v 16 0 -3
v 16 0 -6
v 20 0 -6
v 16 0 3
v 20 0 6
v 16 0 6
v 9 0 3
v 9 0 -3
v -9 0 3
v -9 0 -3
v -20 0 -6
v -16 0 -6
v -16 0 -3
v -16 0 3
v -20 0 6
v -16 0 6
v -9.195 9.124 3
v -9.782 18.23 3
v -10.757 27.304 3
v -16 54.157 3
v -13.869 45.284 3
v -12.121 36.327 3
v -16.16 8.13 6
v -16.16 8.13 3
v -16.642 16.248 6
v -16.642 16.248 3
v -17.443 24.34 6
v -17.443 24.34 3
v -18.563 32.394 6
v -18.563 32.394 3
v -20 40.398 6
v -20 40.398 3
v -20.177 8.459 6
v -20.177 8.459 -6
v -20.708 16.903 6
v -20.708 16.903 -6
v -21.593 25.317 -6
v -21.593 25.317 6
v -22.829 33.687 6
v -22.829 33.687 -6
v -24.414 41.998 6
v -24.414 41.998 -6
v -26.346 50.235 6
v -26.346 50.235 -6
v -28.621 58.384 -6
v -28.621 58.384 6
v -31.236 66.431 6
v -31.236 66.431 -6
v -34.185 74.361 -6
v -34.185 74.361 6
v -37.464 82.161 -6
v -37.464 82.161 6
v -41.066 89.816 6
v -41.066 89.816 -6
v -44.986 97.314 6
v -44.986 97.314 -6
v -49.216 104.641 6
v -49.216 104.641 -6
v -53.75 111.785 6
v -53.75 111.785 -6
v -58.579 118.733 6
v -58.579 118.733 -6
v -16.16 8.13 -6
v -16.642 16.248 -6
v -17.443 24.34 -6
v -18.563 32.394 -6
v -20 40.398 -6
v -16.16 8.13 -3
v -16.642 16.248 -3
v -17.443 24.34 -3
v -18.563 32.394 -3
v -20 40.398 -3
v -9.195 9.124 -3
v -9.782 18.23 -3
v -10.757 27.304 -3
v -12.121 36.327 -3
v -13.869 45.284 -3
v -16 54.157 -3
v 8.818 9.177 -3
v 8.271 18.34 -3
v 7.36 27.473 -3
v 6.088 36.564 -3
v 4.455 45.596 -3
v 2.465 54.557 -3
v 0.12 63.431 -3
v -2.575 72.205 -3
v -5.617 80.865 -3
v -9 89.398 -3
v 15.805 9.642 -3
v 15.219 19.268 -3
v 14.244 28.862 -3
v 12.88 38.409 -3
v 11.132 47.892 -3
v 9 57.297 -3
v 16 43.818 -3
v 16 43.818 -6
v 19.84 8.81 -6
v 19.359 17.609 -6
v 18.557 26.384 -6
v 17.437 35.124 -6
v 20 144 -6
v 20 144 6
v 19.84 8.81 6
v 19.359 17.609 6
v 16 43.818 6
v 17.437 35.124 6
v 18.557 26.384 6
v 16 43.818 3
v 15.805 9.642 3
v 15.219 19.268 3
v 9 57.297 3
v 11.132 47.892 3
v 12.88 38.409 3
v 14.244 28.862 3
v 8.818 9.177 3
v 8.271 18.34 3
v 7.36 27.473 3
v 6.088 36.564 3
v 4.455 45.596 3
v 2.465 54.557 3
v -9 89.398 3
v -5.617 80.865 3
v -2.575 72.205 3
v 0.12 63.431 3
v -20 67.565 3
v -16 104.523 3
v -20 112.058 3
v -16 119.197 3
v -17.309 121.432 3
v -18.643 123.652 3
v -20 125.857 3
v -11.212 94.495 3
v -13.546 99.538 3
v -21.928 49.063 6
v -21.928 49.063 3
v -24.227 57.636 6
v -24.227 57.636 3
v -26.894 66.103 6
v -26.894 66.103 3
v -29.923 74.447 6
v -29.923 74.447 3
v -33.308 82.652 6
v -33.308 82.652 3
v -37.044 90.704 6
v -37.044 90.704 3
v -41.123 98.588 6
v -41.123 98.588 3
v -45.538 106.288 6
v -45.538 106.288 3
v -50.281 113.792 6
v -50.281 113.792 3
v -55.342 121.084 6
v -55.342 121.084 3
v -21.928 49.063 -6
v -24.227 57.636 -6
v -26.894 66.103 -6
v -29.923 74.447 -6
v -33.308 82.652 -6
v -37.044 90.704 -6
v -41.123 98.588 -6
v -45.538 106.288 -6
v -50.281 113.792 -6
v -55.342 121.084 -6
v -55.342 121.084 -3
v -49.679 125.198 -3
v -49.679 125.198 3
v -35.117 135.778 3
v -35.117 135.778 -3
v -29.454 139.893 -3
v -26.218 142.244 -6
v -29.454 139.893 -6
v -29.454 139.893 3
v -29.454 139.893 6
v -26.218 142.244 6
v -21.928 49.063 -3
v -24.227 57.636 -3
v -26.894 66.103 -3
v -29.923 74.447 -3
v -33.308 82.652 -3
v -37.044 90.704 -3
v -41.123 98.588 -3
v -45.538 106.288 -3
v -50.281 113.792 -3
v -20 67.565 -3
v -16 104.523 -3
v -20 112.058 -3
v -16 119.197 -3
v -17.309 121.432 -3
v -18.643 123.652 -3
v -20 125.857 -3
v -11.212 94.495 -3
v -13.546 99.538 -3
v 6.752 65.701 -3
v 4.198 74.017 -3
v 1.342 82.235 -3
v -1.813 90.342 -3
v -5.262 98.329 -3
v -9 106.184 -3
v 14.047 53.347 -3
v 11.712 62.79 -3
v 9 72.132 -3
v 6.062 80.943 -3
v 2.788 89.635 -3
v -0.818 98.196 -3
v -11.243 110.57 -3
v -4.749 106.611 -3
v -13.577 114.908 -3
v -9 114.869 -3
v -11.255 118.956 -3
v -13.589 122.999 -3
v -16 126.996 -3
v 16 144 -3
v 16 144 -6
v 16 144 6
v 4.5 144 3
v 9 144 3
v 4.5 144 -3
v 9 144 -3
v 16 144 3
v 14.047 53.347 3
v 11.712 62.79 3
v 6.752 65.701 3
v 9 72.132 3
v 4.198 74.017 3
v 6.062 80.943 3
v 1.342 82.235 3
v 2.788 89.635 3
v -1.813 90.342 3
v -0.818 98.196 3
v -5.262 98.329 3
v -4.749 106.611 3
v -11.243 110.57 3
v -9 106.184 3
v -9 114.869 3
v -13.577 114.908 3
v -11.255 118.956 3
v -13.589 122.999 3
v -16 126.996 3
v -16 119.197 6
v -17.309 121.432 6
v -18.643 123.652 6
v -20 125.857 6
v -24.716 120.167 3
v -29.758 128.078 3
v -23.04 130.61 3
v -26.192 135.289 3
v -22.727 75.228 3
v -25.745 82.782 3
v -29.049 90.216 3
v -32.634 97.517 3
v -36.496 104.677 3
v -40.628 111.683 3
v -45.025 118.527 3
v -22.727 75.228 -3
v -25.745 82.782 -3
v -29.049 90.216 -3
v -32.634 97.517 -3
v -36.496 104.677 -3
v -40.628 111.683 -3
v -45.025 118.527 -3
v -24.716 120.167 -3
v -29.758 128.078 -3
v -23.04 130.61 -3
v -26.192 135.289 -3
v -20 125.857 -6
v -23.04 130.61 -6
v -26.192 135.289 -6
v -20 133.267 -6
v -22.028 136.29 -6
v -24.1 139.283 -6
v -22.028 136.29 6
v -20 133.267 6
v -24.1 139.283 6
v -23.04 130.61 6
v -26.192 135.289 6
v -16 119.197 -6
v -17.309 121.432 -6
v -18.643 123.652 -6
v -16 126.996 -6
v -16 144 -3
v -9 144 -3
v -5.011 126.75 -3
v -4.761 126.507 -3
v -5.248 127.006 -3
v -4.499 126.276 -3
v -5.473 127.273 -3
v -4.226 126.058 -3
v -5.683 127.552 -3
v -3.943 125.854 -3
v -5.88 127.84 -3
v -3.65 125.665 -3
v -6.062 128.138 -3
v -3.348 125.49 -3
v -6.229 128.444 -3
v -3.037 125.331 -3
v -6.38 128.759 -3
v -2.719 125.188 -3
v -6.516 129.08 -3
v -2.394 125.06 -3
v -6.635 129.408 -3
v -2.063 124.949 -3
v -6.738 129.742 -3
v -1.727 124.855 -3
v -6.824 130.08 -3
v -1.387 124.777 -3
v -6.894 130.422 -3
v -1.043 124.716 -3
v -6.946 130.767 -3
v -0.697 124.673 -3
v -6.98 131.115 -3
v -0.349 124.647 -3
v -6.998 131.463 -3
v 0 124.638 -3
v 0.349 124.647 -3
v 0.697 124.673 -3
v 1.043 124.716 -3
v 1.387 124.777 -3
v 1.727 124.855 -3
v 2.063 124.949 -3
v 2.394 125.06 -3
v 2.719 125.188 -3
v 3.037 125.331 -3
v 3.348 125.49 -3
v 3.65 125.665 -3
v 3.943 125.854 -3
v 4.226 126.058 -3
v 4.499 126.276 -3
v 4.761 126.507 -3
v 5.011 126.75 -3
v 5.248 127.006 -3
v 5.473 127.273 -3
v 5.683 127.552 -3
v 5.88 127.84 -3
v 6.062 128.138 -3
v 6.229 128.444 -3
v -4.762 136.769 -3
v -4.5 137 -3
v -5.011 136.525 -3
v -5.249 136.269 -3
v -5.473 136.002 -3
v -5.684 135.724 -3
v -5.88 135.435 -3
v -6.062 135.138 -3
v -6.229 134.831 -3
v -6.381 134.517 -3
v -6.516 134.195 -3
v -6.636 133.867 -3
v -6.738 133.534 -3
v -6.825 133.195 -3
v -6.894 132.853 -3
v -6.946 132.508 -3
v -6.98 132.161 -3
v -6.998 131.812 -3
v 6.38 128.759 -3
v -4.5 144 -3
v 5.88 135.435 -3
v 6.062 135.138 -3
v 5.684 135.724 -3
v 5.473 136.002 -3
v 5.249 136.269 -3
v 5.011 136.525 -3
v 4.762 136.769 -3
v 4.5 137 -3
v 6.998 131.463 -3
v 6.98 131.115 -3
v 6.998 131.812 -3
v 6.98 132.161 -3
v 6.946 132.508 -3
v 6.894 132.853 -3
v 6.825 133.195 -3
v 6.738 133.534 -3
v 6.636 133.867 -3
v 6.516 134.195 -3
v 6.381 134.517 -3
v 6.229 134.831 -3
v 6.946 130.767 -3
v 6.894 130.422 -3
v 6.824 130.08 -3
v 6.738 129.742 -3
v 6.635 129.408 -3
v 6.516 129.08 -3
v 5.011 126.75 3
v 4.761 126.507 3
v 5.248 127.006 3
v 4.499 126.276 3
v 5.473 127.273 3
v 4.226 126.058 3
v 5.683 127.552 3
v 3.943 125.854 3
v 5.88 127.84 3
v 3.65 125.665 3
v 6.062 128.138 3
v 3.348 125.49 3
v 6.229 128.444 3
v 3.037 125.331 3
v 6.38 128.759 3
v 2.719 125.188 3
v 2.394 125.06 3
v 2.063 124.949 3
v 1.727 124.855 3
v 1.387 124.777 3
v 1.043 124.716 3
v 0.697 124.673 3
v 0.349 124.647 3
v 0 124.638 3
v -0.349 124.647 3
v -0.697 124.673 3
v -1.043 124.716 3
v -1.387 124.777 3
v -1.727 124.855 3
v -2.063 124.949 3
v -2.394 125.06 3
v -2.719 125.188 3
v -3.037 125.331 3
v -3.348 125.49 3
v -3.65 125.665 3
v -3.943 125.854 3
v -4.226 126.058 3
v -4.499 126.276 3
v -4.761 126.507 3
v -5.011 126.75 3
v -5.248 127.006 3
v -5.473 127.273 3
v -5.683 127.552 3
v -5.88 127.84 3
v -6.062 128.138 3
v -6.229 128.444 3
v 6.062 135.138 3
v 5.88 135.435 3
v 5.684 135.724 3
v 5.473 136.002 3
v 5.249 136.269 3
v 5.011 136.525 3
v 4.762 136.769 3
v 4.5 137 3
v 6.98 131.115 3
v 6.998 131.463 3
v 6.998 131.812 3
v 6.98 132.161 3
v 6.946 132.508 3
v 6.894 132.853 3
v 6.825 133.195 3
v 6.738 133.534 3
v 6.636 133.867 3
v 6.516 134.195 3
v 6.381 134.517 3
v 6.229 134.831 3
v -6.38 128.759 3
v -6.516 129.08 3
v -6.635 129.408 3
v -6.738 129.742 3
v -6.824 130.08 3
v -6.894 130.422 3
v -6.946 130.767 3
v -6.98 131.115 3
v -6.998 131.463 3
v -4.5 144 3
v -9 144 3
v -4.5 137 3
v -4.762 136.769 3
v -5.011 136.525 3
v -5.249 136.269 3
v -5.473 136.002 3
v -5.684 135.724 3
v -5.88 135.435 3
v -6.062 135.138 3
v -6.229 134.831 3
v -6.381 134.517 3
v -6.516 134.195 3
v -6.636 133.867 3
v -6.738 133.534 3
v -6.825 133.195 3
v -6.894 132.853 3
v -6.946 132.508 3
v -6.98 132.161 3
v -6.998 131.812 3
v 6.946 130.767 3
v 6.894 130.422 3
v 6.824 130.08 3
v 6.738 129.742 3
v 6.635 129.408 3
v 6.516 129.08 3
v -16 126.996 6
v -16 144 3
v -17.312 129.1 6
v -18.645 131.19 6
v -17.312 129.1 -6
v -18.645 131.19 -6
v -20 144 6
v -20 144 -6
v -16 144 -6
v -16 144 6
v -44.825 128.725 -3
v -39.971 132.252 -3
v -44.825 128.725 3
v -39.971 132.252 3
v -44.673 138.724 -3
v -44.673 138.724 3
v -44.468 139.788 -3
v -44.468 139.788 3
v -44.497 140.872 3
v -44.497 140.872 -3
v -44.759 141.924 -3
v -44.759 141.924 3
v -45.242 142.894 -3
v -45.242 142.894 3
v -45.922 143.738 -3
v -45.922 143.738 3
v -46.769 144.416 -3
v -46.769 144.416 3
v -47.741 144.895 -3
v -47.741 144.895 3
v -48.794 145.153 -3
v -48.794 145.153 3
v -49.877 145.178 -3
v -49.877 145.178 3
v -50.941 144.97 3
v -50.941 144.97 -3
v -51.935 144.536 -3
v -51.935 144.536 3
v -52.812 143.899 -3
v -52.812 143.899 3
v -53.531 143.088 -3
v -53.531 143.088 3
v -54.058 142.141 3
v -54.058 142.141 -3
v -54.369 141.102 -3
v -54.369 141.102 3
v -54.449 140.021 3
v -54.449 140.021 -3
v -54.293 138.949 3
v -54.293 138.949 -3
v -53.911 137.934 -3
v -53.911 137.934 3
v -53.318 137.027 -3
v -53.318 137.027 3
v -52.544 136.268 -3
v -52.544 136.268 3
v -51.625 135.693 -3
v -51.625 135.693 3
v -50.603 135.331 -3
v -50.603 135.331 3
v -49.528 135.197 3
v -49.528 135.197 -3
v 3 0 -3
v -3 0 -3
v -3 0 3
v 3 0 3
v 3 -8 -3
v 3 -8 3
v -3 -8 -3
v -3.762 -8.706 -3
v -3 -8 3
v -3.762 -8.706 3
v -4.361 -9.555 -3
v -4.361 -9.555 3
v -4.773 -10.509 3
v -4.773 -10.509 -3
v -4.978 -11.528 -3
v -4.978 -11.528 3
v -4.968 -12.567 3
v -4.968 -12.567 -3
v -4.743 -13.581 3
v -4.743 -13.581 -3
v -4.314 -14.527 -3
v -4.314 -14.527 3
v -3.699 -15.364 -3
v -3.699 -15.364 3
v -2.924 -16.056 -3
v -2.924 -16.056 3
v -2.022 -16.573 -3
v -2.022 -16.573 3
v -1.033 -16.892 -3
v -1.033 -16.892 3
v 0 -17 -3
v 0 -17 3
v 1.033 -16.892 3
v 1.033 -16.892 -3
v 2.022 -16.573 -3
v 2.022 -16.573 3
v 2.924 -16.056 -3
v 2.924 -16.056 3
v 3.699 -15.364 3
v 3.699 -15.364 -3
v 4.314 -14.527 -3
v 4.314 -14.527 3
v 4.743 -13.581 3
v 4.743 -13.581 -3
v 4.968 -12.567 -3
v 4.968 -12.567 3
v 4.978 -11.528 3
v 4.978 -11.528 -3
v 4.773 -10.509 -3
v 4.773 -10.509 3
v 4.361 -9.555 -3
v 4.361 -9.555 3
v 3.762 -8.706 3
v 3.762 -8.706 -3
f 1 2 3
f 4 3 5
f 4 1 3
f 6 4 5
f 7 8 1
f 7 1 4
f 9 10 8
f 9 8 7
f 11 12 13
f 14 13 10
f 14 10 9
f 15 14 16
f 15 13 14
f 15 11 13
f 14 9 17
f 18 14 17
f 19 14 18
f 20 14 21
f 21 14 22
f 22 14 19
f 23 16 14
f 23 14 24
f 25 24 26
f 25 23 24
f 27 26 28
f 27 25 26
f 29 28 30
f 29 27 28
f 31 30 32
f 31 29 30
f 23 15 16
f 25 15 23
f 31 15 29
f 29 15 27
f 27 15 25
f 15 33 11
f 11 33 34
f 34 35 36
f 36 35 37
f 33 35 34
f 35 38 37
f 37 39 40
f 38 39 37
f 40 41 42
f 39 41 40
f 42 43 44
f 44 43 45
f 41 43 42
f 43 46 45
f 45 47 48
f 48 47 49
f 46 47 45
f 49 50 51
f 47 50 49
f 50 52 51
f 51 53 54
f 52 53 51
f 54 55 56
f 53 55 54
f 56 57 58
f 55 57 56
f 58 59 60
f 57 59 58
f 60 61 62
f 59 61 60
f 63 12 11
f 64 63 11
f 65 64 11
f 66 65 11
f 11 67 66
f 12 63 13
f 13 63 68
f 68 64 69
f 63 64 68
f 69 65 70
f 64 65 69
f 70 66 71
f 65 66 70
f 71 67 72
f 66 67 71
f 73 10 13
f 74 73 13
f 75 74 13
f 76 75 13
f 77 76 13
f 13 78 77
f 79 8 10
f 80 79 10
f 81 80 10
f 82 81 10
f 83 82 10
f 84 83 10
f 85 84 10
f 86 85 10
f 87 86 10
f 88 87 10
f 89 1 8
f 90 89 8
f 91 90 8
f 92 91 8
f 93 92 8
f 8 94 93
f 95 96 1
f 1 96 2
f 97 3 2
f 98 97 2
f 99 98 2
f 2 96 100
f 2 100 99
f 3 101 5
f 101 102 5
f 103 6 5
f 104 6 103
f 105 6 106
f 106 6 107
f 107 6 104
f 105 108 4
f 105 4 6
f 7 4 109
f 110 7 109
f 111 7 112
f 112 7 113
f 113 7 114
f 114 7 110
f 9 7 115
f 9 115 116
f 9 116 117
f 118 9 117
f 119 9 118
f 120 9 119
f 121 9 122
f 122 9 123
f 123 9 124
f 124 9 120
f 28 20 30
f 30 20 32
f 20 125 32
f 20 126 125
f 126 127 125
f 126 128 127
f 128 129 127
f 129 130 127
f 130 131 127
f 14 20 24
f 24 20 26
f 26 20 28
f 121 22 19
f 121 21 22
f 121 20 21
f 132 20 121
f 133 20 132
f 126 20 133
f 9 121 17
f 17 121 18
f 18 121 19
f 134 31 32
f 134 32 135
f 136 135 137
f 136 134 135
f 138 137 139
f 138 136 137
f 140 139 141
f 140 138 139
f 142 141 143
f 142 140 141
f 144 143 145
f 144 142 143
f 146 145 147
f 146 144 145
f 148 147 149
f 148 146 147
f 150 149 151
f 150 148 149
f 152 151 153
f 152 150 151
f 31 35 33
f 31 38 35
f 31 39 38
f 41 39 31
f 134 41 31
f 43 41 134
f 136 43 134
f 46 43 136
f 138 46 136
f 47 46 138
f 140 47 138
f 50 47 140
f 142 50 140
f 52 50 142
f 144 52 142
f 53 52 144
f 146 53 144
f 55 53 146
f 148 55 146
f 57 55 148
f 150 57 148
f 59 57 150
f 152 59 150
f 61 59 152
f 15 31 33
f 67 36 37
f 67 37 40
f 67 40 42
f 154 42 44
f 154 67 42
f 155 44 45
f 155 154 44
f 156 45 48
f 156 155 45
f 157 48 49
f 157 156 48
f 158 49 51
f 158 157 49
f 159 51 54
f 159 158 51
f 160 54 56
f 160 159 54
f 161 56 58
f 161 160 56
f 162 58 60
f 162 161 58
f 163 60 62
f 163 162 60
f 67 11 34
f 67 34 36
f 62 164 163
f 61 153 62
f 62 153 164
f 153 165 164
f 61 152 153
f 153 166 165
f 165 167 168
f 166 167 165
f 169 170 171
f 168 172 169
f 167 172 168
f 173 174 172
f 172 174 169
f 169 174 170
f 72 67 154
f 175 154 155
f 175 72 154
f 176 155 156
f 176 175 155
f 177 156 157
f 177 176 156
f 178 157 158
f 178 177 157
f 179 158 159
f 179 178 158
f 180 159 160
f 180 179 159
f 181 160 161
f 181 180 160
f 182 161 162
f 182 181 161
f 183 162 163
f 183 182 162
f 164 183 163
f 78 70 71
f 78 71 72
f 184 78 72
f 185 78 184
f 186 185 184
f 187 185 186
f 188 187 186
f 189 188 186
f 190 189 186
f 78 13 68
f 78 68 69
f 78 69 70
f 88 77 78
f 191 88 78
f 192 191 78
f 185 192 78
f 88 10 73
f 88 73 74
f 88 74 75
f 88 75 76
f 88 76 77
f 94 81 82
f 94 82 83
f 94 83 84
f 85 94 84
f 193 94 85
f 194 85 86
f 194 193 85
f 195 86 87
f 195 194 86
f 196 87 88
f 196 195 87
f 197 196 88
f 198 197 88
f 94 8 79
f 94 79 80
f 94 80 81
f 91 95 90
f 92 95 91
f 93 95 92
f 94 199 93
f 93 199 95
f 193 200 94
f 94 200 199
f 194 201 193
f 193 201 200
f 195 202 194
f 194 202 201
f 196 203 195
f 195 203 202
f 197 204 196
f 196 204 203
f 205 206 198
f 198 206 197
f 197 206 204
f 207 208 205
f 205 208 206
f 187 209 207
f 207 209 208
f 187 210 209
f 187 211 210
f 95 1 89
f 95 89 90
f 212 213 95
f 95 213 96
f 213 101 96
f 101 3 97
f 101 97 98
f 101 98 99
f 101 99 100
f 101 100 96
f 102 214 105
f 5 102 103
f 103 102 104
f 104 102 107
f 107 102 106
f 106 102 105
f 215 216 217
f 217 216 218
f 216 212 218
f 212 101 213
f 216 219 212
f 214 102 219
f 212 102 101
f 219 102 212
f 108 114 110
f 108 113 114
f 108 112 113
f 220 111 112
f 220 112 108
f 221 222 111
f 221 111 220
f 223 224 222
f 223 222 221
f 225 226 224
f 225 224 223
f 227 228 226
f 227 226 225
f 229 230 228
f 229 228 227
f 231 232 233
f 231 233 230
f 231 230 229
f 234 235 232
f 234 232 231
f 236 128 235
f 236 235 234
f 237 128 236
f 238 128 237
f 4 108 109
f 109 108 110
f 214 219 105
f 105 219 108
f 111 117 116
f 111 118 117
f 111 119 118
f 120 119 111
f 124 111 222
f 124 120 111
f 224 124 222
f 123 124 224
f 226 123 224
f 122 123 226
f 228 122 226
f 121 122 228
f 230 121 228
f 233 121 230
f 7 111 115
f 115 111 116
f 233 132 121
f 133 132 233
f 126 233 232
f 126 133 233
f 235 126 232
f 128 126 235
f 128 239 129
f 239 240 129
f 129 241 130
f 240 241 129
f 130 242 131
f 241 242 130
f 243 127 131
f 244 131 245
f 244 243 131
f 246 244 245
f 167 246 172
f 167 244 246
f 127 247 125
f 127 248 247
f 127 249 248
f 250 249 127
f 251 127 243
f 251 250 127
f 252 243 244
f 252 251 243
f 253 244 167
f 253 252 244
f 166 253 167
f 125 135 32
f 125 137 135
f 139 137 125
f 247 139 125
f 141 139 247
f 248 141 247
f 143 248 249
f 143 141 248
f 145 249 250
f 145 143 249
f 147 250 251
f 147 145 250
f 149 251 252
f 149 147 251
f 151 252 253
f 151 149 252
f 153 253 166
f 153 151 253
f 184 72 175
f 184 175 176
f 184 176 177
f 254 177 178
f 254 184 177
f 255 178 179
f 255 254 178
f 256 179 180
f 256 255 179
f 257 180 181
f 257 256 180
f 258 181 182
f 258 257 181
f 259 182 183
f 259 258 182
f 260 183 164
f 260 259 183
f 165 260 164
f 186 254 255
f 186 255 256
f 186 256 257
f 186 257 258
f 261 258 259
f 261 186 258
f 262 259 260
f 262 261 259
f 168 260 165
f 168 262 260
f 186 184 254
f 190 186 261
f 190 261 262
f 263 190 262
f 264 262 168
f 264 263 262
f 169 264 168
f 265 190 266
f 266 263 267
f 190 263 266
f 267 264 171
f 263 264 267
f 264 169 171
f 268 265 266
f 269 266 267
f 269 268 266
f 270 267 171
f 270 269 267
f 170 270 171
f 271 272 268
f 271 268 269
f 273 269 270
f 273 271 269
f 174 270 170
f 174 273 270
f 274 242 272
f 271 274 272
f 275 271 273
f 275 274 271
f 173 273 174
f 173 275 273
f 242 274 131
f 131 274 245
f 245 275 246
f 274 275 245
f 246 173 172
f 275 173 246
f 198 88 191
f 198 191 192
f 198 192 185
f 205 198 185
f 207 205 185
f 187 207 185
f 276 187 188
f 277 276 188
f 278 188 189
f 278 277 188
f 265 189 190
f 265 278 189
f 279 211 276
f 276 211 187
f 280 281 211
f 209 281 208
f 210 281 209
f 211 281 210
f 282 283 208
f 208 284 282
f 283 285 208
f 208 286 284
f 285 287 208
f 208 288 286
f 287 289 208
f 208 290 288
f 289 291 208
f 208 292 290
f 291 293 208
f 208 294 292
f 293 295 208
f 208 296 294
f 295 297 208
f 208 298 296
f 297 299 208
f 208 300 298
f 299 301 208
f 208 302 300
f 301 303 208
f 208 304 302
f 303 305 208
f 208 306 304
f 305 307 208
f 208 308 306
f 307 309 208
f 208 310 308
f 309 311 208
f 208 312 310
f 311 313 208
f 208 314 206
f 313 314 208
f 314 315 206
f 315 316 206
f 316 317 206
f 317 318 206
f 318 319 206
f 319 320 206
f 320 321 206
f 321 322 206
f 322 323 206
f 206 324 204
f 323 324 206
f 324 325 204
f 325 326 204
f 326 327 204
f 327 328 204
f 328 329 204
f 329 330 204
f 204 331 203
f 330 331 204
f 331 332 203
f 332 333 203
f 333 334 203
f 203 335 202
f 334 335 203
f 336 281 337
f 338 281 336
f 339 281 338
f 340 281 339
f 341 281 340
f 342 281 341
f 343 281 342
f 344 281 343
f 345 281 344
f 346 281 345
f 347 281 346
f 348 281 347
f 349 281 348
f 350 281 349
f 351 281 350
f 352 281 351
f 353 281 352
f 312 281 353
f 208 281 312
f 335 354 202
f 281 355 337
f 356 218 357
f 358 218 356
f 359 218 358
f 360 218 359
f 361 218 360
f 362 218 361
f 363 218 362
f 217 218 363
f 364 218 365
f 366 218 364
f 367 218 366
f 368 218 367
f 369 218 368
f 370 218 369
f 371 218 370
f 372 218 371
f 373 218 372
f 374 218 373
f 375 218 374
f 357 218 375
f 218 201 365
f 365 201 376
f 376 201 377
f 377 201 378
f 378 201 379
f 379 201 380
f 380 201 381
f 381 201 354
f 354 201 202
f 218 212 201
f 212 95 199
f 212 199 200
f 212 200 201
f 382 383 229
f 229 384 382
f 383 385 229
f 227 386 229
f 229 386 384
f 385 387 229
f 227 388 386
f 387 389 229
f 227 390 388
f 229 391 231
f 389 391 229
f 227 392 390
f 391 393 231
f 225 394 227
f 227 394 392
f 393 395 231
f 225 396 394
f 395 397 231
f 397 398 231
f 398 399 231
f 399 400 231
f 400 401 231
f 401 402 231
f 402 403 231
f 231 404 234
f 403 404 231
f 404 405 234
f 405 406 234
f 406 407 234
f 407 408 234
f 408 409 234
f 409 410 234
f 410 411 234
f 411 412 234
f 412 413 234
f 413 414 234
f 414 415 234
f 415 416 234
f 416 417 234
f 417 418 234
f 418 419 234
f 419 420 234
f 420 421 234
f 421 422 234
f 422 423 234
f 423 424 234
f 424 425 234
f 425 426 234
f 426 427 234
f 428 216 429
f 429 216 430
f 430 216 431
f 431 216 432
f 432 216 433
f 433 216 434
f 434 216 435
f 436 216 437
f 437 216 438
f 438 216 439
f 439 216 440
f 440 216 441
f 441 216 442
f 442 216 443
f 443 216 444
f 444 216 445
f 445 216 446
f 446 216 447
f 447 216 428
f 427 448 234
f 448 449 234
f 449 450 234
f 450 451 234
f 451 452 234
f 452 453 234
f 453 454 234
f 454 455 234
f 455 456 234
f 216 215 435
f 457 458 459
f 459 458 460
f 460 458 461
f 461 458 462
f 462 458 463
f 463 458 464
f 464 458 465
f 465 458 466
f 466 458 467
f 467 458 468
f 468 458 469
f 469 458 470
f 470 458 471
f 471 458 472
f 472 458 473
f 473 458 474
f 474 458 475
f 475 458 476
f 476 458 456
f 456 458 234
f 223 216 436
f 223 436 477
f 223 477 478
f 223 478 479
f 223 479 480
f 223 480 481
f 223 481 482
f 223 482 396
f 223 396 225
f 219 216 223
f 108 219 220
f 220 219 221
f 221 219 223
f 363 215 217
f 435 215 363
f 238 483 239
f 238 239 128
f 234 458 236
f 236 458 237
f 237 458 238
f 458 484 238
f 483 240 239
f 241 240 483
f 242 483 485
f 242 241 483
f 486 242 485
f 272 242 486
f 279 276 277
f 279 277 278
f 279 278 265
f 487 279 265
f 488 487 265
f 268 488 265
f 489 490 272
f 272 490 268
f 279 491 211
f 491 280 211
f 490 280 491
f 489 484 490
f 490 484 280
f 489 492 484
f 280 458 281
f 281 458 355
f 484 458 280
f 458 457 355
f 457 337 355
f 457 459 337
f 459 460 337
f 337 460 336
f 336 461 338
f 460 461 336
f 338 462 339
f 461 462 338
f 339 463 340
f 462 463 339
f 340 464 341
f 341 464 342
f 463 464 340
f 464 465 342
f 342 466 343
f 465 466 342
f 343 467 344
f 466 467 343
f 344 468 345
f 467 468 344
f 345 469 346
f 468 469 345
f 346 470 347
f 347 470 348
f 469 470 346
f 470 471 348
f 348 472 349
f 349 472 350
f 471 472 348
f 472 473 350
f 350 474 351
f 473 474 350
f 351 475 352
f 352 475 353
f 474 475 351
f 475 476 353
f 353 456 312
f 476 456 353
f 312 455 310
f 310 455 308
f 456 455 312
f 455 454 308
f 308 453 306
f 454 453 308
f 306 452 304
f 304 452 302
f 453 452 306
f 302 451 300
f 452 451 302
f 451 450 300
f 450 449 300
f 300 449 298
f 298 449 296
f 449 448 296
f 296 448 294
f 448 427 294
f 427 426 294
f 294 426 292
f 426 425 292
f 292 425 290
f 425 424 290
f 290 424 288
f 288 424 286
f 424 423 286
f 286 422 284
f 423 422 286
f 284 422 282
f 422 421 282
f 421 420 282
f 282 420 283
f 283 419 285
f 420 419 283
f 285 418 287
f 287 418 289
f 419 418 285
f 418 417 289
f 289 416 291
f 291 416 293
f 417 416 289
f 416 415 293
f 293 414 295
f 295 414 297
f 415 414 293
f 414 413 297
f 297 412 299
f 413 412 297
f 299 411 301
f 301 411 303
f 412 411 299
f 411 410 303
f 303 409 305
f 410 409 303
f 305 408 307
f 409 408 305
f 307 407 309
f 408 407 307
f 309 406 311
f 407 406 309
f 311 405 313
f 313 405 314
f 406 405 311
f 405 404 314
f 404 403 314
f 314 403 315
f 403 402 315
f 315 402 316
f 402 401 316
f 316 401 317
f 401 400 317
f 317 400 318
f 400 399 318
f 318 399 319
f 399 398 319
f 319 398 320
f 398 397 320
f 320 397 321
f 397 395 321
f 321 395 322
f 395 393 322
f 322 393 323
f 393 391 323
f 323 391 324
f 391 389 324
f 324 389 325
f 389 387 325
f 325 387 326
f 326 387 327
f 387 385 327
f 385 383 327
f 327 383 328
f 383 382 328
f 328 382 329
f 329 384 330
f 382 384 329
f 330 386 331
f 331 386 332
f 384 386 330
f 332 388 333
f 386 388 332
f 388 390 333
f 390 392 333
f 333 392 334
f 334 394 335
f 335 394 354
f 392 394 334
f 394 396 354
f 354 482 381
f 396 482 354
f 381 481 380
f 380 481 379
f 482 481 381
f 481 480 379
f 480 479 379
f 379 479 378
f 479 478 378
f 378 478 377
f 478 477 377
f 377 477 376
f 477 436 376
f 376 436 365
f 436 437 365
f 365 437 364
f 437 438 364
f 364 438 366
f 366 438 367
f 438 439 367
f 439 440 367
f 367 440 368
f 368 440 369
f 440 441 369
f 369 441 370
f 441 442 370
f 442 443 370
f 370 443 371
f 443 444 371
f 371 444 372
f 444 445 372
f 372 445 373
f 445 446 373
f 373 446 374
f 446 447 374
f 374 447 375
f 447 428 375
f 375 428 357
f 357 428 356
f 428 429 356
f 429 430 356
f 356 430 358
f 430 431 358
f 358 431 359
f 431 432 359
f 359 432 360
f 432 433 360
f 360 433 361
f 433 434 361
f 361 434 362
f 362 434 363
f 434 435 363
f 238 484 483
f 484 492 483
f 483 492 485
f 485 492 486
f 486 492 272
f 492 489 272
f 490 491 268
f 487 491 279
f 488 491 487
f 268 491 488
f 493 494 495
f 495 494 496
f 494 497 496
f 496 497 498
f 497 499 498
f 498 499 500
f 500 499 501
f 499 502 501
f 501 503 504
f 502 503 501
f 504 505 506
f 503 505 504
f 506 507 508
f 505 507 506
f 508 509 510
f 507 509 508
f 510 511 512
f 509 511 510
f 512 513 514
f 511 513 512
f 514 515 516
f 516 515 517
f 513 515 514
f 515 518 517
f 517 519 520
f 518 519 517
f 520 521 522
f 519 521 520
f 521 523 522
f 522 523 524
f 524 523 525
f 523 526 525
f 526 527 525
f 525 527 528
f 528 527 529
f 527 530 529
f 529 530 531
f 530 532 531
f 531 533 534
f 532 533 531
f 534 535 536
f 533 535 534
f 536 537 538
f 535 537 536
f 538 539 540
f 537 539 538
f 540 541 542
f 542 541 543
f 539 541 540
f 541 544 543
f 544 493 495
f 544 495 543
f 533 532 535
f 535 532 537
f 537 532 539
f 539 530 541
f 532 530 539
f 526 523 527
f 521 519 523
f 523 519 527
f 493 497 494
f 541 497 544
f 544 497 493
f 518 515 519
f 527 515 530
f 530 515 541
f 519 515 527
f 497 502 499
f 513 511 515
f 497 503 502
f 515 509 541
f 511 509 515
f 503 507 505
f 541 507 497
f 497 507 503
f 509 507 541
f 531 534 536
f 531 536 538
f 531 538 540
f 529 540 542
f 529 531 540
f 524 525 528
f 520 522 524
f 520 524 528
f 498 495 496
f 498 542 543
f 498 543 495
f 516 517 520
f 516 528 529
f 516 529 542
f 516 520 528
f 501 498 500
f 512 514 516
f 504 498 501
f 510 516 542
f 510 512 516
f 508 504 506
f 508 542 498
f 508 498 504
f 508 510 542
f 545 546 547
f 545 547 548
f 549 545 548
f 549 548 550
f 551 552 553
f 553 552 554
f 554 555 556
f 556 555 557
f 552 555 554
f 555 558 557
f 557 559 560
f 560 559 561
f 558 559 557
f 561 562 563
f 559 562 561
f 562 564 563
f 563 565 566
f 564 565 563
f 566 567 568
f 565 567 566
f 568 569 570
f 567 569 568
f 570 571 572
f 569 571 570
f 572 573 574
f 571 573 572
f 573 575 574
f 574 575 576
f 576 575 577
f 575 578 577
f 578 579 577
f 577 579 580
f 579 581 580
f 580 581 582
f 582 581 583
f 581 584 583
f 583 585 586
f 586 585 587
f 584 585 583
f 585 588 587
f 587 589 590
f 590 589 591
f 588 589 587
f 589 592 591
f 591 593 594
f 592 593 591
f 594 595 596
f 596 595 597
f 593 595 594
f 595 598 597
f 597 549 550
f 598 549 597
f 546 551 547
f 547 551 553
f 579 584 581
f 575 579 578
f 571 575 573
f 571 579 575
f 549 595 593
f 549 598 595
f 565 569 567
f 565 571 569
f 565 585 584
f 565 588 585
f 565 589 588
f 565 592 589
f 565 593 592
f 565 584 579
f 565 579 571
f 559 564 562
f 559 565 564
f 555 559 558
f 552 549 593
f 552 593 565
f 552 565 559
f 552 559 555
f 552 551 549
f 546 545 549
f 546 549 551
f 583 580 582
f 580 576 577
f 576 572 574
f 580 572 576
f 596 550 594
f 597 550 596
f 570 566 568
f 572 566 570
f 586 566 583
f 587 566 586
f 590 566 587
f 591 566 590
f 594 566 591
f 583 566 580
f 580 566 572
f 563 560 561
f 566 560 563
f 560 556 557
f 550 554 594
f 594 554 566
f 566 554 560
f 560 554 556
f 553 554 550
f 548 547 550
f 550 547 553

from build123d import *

# Parameters (mm, degrees)
SKETCH013_W       = 32
SKETCH013_H       = 3
POCKET_DEPTH      = 6.001
POCKET_DEPTH_BACK = -6.001
PAD_DEPTH         = 3
PAD002_DEPTH      = 3


with BuildPart() as body:
    # AdditivePipe: sweep along a path in Sketch002
    with BuildLine(Plane.XY) as additivepipe_path:
        ThreePointArc((0, 0), (-10.865453, 68.601773), (-42.398227, 130.488326))
    # Sketch → AdditivePipe (sweep)
    with BuildSketch(Plane.XZ):
        Polygon((-20, 6), (-20, -6), (-16, -6), (-16, -3), (-9, -3), (9, -3), (16, -3), (16, -6), (20, -6), (20, 6), (16, 6), (16, 3), (9, 3), (-9, 3), (-16, 3), (-16, 6), align=None)
    sweep(path=additivepipe_path.line)

    # AdditivePipe001: sweep along a path in Sketch001
    with BuildLine(Plane.XY) as additivepipe001_path:
        Line((0, 0), (0, 144))
    # Sketch → AdditivePipe001 (sweep)
    with BuildSketch(Plane.XZ):
        Polygon((-20, 6), (-20, -6), (-16, -6), (-16, -3), (-9, -3), (9, -3), (16, -3), (16, -6), (20, -6), (20, 6), (16, 6), (16, 3), (9, 3), (-9, 3), (-16, 3), (-16, 6), align=None)
    sweep(path=additivepipe001_path.line)

    # SubtractivePipe: sweep along a path in Sketch002
    with BuildLine(Plane.XY) as subtractivepipe_path:
        ThreePointArc((0, 0), (-10.865453, 68.601773), (-42.398227, 130.488326))
    # Sketch013 (on Face1 of AdditivePipe001) → SubtractivePipe (sweep, cut)
    with BuildSketch(Plane.XZ):
        with Locations((0, 4.5)):
            Rectangle(SKETCH013_W, SKETCH013_H)
    subtractivepipe = sweep(path=subtractivepipe_path.line, mode=Mode.SUBTRACT)

    # SubtractivePipe001: sweep along a path in Sketch001
    with BuildLine(Plane.XY) as subtractivepipe001_path:
        Line((0, 0), (0, 144))
    # Sketch013 (on Face1 of AdditivePipe001) → SubtractivePipe001 (sweep, cut)
    with BuildSketch(Plane.XZ):
        with Locations((0, 4.5)):
            Rectangle(SKETCH013_W, SKETCH013_H)
    subtractivepipe001 = sweep(path=subtractivepipe001_path.line, mode=Mode.SUBTRACT)

    # Mirrored: SubtractivePipe across XY
    add(subtractivepipe.mirror(Plane.XY), mode=Mode.SUBTRACT)

    # Mirrored001: SubtractivePipe001 across XY
    add(subtractivepipe001.mirror(Plane.XY), mode=Mode.SUBTRACT)

    # Sketch016 → Pocket (cut, two sides)
    with BuildSketch(Plane.XY) as pocket_sk:
        with BuildLine():
            Line((-4.5, 144), (4.5, 144))
            Line((4.5, 144), (4.5, 137))
            ThreePointArc((-4.5, 137), (0, 124.638097), (4.5, 137))
            Line((-4.5, 144), (-4.5, 137))
        make_face()
    extrude(amount=-POCKET_DEPTH, mode=Mode.SUBTRACT)
    extrude(pocket_sk.sketch, amount=-POCKET_DEPTH_BACK, mode=Mode.SUBTRACT)


with BuildPart() as body001:
    # Sketch008 → Pad (new body, symmetric)
    with BuildSketch(Plane.XY):
        with BuildLine():
            Line((-3, 0), (3, 0))
            Line((3, 0), (3, -8))
            ThreePointArc((-3, -8), (0, -17), (3, -8))
            Line((-3, 0), (-3, -8))
        make_face()
    extrude(amount=PAD_DEPTH, both=True)


with BuildPart() as body003:
    # Sketch012 → Pad002 (new body, symmetric)
    with BuildSketch(Plane.XY):
        with BuildLine():
            Line((-44.825278, 128.72497), (-39.971176, 132.251682))
            Line((-39.971176, 132.251682), (-44.673458, 138.723818))
            ThreePointArc((-44.673458, 138.723818), (-52.390577, 144.241615), (-49.52756, 135.197106))
            Line((-44.825278, 128.72497), (-49.52756, 135.197106))
        make_face()
    extrude(amount=PAD002_DEPTH, both=True)


solid = Compound([body.part, body001.part, body003.part])
